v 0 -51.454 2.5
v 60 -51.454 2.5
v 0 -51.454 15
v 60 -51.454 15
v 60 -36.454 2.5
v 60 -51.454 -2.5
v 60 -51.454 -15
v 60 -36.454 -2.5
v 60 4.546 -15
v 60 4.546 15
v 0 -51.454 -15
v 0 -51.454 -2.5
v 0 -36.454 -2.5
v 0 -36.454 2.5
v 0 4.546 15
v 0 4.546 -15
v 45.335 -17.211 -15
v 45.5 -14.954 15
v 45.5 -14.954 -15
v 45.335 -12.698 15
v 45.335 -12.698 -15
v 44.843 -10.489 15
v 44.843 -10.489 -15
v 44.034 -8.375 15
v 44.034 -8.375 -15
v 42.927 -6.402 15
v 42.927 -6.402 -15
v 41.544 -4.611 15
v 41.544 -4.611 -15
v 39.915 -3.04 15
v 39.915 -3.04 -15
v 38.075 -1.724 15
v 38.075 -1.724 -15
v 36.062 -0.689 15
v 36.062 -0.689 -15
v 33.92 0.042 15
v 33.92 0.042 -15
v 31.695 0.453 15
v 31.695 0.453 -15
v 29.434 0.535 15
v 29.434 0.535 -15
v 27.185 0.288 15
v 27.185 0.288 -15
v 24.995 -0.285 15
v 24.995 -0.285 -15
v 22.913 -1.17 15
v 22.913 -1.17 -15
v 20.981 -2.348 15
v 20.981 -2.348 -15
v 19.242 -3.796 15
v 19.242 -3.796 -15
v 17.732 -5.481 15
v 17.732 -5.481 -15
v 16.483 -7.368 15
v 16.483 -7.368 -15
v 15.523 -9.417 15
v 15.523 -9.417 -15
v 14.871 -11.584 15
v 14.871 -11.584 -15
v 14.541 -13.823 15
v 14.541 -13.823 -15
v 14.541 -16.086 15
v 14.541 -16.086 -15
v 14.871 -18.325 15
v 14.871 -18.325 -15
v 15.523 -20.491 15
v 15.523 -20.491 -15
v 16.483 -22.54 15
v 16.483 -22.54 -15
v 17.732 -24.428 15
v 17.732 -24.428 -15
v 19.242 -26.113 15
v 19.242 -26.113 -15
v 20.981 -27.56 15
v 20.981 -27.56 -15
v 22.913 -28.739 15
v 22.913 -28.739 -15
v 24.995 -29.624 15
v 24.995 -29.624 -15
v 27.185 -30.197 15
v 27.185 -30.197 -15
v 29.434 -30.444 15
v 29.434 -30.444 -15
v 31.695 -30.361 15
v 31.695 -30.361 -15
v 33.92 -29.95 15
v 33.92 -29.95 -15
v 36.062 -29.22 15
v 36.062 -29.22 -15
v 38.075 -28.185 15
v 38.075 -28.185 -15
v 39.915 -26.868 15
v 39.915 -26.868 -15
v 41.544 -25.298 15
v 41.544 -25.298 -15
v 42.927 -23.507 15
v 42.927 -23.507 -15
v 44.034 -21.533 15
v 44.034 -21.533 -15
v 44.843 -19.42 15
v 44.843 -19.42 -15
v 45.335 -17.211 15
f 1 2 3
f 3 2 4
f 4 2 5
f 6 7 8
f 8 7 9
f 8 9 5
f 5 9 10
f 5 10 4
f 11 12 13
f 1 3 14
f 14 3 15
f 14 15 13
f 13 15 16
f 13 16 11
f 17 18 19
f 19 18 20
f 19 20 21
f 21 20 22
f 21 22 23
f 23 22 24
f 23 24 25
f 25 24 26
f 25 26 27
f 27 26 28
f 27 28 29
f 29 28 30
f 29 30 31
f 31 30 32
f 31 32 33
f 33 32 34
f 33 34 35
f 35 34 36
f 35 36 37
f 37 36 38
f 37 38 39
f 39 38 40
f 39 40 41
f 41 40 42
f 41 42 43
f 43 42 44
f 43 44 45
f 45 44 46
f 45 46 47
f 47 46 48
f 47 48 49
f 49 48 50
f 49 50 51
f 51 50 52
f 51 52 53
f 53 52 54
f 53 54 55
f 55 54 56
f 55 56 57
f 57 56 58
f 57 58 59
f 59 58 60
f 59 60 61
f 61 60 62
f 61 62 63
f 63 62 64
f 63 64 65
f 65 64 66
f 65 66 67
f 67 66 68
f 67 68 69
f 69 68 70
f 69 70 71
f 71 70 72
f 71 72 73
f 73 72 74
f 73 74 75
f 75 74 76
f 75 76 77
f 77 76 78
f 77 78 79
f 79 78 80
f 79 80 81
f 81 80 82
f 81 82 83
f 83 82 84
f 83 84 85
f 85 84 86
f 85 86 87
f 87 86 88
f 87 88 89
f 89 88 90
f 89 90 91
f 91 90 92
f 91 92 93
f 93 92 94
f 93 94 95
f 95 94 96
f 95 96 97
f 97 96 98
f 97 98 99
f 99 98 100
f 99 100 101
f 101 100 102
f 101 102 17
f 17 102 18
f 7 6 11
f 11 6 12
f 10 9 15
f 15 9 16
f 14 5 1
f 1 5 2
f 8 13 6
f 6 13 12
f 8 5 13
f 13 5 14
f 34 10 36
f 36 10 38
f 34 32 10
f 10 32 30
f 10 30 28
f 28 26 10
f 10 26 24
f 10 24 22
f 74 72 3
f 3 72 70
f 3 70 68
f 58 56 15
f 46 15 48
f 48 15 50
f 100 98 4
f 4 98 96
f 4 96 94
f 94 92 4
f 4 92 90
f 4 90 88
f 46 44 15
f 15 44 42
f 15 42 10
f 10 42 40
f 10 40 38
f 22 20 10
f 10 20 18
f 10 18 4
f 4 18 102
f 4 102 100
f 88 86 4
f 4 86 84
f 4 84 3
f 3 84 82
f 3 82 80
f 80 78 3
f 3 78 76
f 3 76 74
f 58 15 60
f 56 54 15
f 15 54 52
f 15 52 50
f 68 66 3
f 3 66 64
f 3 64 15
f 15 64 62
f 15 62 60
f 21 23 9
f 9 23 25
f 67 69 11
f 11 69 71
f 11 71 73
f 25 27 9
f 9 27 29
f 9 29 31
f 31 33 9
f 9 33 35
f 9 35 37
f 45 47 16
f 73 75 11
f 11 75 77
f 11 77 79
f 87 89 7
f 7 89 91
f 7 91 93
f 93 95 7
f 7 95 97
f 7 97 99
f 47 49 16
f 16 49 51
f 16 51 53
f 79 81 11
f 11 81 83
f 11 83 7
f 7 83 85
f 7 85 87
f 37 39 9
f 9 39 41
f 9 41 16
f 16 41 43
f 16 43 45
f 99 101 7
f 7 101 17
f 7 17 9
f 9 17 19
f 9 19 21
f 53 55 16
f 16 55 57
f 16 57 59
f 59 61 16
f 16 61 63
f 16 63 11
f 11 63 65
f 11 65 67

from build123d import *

# Parameters (mm, degrees)
EXTRUDE_1_DEPTH          = 60
CUT_EXTRUDE_1_DEPTH      = 40
CUT_EXTRUDE_1_DEPTH_BACK = 29
SKETCH_4_R               = 15.5
SKETCH_5_W               = 5
SKETCH_5_H               = 30
CUT_EXTRUDE_2_DEPTH      = 83.900874001
CUT_EXTRUDE_START        = 25
SKETCH_6_W               = 60
SKETCH_6_H               = 56
CUT_EXTRUDE_3_DEPTH      = 10
CUT_EXTRUDE_START_2      = -15
SKETCH_7_W               = 60
SKETCH_7_H               = 56
CUT_EXTRUDE_4_DEPTH      = 10


with BuildPart() as part:
    # 스케치3 → 보스-돌출1 (new body)
    with BuildSketch(Plane(origin=(0, 0, 0), x_dir=(0, 0, -1), z_dir=(1, 0, 0))):
        Polygon((-25, -51.454396413), (25, -51.454396413), (15, 4.545603587), (-15, 4.545603587), align=None)
    extrude(amount=EXTRUDE_1_DEPTH)

    # 스케치4 → 컷-돌출1 (cut, two sides: drawn at the far end of the back side and taken through both)
    with BuildSketch(Plane.XY.offset(-CUT_EXTRUDE_1_DEPTH_BACK)):
        with Locations(Location((30, -14.954396413, 0), (0, 0, 90))):
            Circle(SKETCH_4_R)
    extrude(amount=CUT_EXTRUDE_1_DEPTH + CUT_EXTRUDE_1_DEPTH_BACK, mode=Mode.SUBTRACT)

    # 스케치5 → 컷-돌출2 (cut, through all)
    with BuildSketch(Plane(origin=(0, 0, 0), x_dir=(0, 0, -1), z_dir=(1, 0, 0))):
        with Locations((0, -51.454396413)):
            Rectangle(SKETCH_5_W, SKETCH_5_H)
    extrude(amount=CUT_EXTRUDE_2_DEPTH, mode=Mode.SUBTRACT)

    # 스케치6 → 컷-돌출3 (cut)
    with BuildSketch(Plane.XY.offset(CUT_EXTRUDE_START)):
        with Locations((30, -23.454396413)):
            Rectangle(SKETCH_6_W, SKETCH_6_H)
    extrude(amount=-CUT_EXTRUDE_3_DEPTH, mode=Mode.SUBTRACT)

    # 스케치7 → 컷-돌출4 (cut)
    with BuildSketch(Plane.XY.offset(CUT_EXTRUDE_START_2)):
        with Locations((30, -23.454396413)):
            Rectangle(SKETCH_7_W, SKETCH_7_H)
    extrude(amount=-CUT_EXTRUDE_4_DEPTH, mode=Mode.SUBTRACT)


solid = part.part
